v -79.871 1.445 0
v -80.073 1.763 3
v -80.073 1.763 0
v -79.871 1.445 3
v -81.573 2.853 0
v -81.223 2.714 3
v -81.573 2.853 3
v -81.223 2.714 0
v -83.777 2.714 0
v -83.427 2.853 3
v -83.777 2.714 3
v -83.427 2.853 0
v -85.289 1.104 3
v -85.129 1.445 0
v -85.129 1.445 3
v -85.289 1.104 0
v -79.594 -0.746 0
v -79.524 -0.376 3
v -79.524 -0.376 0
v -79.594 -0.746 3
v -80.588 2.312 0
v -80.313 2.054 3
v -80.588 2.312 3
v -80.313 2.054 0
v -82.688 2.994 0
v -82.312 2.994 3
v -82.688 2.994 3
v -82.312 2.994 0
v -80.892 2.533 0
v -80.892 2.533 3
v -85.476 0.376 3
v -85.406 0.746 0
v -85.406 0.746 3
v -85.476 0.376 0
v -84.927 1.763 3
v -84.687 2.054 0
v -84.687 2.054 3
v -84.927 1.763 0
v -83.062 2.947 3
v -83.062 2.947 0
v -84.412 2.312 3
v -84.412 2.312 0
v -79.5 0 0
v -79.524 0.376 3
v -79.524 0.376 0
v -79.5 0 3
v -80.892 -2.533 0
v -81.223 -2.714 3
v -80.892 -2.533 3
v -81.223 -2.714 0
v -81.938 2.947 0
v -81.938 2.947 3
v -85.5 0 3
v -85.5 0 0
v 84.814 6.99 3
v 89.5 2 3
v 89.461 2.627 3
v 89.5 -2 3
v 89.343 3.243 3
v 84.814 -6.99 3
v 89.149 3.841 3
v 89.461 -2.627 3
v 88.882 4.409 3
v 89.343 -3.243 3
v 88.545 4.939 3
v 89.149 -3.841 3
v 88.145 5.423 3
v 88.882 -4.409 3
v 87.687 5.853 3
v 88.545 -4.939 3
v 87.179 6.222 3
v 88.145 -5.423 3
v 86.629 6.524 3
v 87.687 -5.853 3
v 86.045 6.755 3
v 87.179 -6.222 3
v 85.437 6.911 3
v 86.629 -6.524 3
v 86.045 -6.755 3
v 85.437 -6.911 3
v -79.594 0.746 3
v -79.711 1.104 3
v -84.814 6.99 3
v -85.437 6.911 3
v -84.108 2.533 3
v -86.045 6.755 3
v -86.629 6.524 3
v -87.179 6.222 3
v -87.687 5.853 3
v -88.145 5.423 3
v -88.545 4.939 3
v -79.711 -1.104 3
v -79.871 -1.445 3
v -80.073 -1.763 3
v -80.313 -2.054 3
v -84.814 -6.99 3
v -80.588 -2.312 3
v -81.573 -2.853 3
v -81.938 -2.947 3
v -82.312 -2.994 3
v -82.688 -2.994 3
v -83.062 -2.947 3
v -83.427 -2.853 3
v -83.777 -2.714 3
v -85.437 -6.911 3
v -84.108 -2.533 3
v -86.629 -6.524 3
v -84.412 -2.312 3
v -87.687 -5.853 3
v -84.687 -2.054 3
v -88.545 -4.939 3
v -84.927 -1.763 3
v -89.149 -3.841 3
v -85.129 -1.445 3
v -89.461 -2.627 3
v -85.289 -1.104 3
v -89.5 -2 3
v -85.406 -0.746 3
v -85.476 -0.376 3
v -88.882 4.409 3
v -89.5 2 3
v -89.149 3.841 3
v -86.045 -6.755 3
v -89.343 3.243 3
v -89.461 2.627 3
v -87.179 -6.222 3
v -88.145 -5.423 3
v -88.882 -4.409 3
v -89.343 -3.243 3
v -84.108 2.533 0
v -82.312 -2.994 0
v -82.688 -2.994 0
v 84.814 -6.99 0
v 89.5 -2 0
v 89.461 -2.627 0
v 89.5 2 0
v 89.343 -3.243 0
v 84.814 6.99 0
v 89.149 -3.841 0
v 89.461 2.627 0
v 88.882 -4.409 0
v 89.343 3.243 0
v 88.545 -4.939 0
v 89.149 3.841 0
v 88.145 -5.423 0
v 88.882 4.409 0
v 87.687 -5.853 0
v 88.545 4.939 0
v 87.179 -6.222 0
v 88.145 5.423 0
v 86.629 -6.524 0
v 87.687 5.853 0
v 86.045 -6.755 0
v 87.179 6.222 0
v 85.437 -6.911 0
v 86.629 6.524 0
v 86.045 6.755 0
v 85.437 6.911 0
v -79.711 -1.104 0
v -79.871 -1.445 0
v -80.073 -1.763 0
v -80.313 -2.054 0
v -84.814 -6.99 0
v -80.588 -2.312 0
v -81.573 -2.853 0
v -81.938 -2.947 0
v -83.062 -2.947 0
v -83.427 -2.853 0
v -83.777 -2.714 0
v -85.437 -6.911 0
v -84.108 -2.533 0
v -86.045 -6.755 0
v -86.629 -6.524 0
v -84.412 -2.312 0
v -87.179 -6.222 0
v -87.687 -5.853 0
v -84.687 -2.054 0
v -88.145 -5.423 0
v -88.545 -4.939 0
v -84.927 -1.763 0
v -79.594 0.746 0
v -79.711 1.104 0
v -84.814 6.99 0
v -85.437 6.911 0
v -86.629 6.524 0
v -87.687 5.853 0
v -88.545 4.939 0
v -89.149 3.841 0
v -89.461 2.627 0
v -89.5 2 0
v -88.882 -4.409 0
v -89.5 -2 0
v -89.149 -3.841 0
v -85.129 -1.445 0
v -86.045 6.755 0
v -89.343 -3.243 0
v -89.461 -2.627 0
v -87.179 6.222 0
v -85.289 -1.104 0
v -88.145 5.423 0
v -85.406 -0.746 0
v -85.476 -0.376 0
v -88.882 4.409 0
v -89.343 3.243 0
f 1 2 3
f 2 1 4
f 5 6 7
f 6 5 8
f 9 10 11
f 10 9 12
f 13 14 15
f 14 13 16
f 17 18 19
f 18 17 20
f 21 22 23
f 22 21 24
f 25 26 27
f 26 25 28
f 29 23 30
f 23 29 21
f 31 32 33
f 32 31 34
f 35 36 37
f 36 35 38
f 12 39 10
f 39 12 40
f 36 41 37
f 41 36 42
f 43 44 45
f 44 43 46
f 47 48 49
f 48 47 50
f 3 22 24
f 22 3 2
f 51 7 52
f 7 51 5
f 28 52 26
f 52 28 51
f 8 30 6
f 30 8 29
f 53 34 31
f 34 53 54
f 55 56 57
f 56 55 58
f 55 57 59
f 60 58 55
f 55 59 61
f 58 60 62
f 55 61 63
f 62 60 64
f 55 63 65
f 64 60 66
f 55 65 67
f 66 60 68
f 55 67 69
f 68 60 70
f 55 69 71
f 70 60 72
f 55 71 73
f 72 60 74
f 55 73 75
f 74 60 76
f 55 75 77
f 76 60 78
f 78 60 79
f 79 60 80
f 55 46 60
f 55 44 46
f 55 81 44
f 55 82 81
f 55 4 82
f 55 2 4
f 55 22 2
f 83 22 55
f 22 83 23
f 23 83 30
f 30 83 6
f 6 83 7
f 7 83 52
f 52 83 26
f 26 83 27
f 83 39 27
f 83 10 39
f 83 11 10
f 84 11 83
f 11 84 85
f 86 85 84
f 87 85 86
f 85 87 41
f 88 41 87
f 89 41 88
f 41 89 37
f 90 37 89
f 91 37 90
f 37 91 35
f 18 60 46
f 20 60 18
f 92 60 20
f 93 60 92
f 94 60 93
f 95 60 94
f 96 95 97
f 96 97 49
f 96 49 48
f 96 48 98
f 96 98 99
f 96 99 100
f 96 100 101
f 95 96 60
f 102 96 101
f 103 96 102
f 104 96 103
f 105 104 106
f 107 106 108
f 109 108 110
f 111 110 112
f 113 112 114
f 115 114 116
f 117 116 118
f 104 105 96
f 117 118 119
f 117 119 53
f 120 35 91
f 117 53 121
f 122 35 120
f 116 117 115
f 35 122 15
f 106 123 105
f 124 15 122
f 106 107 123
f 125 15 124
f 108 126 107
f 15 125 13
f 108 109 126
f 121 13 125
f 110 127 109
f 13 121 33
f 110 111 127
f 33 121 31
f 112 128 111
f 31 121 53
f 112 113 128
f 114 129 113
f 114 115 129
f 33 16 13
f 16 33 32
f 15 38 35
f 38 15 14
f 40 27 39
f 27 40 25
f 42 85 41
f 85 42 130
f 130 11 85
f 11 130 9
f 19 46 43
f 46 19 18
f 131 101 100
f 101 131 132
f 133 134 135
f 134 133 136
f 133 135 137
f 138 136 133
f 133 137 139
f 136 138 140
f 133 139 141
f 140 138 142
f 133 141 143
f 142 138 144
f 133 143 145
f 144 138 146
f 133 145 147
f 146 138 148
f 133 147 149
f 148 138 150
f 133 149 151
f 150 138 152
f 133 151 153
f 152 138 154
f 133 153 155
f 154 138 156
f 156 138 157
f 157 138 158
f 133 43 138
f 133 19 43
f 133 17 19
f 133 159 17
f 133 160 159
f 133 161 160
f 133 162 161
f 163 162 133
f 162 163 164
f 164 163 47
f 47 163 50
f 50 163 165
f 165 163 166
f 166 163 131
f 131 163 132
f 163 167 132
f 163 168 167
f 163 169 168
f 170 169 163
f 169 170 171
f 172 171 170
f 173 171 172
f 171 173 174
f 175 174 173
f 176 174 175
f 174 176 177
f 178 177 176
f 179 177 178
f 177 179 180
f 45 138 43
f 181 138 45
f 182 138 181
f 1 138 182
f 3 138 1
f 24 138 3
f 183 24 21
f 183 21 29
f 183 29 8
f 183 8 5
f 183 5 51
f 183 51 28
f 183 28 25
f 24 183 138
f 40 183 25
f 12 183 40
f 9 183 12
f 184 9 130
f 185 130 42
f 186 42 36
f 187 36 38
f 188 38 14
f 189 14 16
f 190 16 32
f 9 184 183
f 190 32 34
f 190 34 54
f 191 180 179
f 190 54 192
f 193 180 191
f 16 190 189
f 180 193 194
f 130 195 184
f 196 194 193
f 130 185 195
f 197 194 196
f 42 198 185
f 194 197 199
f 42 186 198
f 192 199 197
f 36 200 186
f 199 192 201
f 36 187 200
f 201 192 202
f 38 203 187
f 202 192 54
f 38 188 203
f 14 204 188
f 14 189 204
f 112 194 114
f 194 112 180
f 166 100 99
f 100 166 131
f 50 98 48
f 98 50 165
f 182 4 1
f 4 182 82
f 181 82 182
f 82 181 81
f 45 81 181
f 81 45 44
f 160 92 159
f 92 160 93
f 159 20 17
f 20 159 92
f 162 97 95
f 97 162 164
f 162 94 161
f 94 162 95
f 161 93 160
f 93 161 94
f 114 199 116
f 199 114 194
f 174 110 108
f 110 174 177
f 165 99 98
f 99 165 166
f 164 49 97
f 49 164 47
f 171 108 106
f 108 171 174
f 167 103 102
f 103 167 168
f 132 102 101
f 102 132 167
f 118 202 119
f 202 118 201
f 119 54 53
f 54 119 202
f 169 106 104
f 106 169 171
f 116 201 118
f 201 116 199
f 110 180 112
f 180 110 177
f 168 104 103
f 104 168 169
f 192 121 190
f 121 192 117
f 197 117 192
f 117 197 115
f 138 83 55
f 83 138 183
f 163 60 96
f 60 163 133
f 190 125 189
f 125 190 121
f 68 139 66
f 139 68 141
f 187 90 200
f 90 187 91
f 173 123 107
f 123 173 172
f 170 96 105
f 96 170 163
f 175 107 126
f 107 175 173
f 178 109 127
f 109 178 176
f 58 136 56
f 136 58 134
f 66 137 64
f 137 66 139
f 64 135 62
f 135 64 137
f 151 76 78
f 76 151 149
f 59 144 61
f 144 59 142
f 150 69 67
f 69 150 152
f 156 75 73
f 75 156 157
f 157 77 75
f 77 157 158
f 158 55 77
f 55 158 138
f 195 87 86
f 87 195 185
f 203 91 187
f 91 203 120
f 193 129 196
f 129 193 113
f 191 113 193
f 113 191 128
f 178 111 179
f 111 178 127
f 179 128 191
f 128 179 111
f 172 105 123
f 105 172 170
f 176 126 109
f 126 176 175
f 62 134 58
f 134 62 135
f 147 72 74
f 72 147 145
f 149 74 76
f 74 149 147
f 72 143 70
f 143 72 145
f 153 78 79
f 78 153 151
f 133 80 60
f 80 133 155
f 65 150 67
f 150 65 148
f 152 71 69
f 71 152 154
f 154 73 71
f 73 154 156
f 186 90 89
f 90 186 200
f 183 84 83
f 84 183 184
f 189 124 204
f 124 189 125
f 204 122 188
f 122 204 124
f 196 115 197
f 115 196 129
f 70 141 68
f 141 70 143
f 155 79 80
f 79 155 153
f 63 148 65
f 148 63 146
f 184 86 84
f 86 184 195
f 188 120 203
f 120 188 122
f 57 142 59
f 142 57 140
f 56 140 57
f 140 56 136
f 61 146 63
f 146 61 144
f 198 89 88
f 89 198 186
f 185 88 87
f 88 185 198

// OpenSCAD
$fn = 50;


difference() {
	union() {
		hull() {
			translate(v = [-84.5000000000, 2.0000000000, 0]) {
				cylinder(h = 3, r = 5);
			}
			translate(v = [84.5000000000, 2.0000000000, 0]) {
				cylinder(h = 3, r = 5);
			}
			translate(v = [-84.5000000000, -2.0000000000, 0]) {
				cylinder(h = 3, r = 5);
			}
			translate(v = [84.5000000000, -2.0000000000, 0]) {
				cylinder(h = 3, r = 5);
			}
		}
	}
	union() {
		translate(v = [-82.5000000000, 0.0000000000, 0]) {
			cylinder(h = 3, r = 3.0000000000);
		}
		translate(v = [-82.5000000000, 0.0000000000, 0]) {
			cylinder(h = 3, r = 1.5000000000);
		}
		translate(v = [-82.5000000000, 0.0000000000, 0]) {
			cylinder(h = 3, r = 1.5000000000);
		}
		translate(v = [-82.5000000000, 0.0000000000, 0]) {
			cylinder(h = 3, r = 1.5000000000);
		}
	}
}
